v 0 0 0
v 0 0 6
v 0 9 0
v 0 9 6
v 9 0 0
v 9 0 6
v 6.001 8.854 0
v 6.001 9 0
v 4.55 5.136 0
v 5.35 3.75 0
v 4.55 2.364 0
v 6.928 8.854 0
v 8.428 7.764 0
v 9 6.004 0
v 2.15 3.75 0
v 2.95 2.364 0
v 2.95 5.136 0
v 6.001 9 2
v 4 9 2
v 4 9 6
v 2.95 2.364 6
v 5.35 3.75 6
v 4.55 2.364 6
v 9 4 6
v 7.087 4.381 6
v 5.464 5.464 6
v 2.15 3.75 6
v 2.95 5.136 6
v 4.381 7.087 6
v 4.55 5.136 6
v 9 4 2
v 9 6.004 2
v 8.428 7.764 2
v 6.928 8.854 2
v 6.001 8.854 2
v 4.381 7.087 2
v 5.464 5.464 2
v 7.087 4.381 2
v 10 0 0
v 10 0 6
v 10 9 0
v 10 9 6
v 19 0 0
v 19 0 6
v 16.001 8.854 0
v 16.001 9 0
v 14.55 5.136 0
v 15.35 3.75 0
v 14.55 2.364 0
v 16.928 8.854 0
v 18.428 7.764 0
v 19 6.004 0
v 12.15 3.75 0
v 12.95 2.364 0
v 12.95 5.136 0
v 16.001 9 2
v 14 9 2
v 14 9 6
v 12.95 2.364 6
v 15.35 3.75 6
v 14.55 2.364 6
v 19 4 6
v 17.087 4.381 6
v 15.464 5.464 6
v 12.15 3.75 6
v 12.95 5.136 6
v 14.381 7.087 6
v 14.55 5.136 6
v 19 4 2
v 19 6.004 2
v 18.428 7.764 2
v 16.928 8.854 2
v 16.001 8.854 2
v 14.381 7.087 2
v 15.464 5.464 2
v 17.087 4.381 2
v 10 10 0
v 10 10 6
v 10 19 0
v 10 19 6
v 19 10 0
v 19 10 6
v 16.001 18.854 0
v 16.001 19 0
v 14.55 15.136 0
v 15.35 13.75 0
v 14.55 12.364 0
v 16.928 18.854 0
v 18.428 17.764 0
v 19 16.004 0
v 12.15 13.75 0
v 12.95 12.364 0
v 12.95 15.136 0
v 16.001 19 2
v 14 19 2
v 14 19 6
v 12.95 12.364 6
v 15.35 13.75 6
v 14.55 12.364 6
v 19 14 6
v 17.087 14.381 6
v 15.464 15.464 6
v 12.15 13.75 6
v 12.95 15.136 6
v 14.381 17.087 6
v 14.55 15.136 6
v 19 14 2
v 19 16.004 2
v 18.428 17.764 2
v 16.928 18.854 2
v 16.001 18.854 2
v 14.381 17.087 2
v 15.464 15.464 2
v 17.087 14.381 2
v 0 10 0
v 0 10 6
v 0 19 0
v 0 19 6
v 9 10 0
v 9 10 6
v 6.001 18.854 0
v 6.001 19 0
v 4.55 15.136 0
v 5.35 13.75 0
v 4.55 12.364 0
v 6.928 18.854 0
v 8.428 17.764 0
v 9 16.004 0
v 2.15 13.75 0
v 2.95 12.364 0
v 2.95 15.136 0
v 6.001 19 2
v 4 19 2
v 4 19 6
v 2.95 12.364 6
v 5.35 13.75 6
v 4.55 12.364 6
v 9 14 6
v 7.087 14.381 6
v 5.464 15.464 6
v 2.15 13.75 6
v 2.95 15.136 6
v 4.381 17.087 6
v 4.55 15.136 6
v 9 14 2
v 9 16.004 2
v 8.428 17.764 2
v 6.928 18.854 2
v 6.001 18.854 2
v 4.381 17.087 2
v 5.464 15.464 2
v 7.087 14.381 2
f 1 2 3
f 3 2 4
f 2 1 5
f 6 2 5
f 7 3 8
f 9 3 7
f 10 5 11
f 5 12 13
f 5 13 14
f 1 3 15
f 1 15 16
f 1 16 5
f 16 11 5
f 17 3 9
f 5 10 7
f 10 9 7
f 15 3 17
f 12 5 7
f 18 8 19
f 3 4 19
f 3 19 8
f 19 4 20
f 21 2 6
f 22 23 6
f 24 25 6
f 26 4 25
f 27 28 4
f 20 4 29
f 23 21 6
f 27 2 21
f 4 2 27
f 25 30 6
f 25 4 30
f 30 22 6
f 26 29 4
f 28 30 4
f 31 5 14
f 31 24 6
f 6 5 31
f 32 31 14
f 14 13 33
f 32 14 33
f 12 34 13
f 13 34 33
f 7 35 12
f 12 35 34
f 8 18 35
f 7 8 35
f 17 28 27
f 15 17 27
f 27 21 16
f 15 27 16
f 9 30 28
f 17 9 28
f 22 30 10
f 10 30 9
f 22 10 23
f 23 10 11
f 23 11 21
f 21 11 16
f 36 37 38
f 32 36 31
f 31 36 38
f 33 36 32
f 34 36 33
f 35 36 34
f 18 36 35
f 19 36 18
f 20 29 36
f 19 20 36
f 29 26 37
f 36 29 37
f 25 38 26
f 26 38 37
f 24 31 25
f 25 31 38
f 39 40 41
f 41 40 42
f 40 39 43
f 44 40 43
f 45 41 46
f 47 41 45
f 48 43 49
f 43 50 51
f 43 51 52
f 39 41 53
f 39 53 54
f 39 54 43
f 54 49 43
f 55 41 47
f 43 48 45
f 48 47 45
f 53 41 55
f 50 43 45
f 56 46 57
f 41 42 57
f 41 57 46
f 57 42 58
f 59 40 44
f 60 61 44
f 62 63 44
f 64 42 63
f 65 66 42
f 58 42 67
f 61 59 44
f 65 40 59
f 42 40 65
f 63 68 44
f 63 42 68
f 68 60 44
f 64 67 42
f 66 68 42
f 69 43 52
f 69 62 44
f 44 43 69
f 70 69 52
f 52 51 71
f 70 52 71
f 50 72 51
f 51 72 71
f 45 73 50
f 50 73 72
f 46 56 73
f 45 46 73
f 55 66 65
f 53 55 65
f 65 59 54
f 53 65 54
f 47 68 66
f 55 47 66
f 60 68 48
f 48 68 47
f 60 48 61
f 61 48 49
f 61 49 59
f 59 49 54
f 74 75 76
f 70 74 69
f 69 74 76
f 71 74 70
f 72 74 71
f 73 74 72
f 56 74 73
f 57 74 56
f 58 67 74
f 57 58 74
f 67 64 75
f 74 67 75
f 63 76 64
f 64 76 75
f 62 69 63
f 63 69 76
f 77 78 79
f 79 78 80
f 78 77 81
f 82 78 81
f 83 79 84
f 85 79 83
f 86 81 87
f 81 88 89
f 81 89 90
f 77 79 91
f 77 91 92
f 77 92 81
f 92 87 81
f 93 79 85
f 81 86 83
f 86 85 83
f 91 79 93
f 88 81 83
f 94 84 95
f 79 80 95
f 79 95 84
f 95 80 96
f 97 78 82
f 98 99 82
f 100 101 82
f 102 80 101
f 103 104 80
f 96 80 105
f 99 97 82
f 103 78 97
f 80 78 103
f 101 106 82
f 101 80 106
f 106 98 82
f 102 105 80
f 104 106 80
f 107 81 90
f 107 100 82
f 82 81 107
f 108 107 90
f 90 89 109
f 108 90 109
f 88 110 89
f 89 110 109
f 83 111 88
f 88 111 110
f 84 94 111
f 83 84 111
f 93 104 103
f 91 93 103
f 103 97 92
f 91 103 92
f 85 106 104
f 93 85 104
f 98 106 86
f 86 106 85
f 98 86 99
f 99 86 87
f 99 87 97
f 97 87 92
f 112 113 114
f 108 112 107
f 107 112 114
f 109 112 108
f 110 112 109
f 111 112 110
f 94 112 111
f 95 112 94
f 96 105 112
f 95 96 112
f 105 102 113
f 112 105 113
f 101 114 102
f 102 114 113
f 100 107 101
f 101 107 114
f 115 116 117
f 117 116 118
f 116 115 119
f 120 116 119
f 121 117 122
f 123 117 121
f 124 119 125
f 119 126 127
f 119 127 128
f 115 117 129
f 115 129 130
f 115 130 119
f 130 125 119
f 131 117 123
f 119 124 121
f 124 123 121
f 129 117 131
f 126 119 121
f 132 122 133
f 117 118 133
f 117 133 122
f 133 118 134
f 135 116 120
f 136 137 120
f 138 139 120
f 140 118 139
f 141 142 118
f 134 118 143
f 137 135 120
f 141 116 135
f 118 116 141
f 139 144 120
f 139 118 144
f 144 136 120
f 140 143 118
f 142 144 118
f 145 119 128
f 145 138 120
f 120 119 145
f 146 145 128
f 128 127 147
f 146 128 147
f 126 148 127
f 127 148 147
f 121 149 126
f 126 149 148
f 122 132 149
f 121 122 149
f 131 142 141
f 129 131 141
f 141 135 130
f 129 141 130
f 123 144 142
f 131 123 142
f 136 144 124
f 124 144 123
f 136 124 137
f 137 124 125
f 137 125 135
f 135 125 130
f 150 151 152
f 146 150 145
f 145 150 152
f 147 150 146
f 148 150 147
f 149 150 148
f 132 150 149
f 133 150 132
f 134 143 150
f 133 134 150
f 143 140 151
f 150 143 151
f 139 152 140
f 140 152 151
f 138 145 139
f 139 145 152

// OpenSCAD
metacube_clamp();
translate([10,0,0])
	metacube_clamp();
translate([10,10,0])
	metacube_clamp();
translate([0,10,0])
	metacube_clamp();

module metacube_clamp() {

	difference() {
		cube([9,9, 6]);
		translate([7.5/2, 7.5/2, -1])
			cylinder(r = 1.6, h = 10);
	
		translate([9, 9, 2])
			cylinder(r = 5, h = 10);	
		translate([9+0.001, 9+0.001, -10])
			rotate([0,0,180])
				roundcorner(3);
	}
}

module roundcorner(diameter){
	difference(){
		cube(size = [diameter,diameter,99], center = false);
		translate(v = [diameter, diameter, 0]) cylinder(h = 100, r=diameter, center=true);
	}
}
